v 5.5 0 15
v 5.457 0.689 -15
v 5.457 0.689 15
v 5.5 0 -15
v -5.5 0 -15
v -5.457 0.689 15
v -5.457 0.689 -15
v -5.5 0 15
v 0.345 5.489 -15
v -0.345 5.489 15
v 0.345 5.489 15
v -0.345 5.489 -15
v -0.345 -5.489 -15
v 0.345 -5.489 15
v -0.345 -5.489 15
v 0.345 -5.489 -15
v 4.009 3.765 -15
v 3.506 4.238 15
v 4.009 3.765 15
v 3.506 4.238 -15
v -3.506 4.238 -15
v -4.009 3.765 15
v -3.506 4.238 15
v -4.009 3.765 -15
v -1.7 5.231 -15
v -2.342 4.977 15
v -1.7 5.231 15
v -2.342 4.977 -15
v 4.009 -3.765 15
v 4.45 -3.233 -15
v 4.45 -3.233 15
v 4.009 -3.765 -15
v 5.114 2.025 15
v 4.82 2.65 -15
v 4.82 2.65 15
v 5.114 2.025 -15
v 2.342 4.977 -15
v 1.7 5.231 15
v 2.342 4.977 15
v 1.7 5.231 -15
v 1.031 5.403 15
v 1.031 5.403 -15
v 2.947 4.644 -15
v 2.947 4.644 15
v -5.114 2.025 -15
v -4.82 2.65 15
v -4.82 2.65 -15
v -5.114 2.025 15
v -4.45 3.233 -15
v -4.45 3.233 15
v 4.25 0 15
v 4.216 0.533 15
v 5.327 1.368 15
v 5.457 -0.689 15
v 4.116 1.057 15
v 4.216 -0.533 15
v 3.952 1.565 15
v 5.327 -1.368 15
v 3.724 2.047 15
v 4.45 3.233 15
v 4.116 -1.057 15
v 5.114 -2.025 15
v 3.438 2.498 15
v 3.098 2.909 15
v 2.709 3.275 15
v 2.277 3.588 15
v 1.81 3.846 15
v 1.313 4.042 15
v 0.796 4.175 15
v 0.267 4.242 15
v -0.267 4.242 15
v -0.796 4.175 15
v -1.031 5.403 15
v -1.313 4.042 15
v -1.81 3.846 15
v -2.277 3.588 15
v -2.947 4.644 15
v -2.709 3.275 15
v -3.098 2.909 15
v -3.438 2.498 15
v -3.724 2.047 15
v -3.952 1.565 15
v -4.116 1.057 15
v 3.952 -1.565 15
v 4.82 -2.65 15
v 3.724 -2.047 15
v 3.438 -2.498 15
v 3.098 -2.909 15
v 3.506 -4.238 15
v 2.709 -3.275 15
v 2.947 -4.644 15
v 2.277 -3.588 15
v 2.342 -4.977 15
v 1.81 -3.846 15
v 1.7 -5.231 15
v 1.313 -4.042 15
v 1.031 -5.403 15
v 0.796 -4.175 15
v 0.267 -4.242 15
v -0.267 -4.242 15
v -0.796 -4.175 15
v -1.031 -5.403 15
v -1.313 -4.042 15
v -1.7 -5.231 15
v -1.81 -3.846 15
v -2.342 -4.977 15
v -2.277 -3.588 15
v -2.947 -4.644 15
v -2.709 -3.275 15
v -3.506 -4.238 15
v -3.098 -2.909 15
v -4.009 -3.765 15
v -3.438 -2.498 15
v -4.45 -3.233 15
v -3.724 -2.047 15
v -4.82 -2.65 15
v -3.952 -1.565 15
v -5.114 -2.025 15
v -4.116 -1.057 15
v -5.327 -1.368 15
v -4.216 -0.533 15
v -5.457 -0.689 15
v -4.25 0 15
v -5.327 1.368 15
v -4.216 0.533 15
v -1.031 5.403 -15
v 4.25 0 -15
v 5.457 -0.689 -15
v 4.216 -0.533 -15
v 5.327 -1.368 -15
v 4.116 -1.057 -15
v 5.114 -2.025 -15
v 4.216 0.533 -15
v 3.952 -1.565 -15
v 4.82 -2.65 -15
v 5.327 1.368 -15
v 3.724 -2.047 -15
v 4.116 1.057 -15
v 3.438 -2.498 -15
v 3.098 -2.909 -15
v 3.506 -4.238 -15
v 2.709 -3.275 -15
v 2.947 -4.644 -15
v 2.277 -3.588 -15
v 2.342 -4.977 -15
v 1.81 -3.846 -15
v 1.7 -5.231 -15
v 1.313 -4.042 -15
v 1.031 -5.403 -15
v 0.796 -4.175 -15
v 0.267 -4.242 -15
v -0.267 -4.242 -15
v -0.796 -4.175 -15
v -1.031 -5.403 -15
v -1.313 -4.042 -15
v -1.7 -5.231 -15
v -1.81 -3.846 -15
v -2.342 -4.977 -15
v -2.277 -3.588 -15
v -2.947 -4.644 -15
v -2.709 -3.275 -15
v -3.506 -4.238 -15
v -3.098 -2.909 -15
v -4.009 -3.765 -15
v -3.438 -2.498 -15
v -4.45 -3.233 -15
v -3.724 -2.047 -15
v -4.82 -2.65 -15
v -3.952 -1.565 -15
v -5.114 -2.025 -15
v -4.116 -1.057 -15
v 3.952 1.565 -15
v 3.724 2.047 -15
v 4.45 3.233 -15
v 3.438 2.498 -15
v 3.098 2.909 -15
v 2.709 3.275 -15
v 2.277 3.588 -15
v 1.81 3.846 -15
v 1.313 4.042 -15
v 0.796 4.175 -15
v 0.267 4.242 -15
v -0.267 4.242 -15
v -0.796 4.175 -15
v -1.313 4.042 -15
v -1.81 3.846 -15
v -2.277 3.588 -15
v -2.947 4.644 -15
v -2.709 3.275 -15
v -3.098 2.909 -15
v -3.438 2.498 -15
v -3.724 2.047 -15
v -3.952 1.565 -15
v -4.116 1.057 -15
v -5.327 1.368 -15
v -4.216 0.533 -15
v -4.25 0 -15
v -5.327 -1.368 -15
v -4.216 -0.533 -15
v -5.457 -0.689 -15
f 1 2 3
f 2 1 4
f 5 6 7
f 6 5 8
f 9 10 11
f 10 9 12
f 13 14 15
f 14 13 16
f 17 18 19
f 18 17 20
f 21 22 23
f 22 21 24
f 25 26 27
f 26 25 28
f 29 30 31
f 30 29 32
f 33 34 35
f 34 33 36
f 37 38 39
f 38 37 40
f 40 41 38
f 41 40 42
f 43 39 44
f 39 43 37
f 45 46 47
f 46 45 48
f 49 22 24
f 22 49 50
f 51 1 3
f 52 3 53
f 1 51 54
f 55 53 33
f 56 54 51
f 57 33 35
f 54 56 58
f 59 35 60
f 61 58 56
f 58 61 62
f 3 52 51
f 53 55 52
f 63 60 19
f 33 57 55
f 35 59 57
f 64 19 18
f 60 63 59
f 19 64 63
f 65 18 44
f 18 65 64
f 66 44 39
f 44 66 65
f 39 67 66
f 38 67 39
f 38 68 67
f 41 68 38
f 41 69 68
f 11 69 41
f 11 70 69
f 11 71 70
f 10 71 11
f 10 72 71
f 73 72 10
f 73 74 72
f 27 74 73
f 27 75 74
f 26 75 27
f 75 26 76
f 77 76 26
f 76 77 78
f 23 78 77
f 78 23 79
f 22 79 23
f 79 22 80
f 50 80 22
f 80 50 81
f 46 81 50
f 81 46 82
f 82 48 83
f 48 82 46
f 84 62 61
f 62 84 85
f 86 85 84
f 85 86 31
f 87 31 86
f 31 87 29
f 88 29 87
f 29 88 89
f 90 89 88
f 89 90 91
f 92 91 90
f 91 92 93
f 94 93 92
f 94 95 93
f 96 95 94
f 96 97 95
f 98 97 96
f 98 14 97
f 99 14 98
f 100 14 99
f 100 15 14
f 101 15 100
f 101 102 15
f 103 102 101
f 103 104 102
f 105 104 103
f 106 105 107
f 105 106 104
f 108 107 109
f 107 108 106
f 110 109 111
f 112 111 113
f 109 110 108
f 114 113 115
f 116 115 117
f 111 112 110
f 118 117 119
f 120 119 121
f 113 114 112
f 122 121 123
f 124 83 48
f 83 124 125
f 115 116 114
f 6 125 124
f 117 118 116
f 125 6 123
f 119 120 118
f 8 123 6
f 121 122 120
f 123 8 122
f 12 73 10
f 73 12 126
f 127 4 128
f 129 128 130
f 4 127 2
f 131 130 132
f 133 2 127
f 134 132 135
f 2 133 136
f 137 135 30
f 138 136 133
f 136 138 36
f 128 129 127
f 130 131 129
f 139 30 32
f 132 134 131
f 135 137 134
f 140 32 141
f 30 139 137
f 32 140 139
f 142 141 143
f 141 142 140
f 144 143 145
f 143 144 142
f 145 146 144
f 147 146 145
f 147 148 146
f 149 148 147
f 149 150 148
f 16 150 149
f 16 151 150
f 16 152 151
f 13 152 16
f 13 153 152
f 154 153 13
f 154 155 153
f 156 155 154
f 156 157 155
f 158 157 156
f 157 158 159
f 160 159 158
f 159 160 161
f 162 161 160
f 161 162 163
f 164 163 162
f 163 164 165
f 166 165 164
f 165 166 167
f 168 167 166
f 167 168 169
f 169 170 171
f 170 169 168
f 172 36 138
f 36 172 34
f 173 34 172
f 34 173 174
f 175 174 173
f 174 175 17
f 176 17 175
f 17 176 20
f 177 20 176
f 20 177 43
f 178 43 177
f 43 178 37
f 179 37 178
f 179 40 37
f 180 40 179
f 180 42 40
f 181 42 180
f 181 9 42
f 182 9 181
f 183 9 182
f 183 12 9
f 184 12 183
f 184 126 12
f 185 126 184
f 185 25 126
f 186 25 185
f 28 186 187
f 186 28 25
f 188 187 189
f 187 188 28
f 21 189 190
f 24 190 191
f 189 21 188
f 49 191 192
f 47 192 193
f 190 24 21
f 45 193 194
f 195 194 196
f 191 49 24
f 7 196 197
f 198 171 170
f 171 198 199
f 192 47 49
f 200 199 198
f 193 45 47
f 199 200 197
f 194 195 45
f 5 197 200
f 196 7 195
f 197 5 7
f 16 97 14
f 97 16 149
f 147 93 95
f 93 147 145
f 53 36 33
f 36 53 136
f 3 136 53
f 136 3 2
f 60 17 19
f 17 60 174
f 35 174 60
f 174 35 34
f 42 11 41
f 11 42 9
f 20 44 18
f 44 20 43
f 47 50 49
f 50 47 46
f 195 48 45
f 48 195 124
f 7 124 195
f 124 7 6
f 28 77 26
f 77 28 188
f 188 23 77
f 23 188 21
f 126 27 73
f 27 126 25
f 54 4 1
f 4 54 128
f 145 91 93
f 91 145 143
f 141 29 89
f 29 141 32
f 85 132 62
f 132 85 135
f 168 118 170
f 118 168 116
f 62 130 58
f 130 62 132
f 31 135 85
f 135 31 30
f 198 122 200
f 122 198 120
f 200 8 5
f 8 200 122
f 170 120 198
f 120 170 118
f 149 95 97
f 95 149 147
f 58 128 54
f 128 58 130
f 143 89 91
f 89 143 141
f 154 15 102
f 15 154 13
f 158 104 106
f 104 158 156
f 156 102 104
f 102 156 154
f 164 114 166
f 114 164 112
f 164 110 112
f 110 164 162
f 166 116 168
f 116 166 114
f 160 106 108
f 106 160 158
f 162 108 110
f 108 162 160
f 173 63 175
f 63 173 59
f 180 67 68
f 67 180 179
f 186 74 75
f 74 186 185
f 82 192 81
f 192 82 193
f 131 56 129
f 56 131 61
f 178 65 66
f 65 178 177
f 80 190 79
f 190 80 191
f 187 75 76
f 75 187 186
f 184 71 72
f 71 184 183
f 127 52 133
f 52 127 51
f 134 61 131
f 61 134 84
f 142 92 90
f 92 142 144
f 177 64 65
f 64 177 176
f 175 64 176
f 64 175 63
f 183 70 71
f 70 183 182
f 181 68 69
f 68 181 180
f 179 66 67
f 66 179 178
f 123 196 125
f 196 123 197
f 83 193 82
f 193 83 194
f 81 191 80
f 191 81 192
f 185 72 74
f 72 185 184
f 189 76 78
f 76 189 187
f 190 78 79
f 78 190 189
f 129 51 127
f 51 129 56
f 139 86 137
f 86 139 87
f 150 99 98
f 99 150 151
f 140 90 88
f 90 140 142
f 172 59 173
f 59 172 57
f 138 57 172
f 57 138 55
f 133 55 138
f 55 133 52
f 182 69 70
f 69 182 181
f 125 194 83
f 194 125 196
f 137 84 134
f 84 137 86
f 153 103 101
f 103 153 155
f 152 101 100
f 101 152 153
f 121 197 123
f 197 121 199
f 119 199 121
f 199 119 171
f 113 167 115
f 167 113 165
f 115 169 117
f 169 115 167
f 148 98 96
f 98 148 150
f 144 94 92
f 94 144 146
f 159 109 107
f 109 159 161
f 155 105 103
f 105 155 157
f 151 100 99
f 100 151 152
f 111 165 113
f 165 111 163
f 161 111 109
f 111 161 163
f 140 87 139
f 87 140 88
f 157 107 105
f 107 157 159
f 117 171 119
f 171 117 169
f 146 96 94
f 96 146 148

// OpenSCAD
$fn = 50;


difference() {
	union() {
		translate(v = [0, 0, -15.0000000000]) {
			cylinder(h = 30, r = 5.5000000000);
		}
	}
	union() {
		translate(v = [0, 0, -100.0000000000]) {
			cylinder(h = 200, r = 4.2500000000);
		}
	}
}
